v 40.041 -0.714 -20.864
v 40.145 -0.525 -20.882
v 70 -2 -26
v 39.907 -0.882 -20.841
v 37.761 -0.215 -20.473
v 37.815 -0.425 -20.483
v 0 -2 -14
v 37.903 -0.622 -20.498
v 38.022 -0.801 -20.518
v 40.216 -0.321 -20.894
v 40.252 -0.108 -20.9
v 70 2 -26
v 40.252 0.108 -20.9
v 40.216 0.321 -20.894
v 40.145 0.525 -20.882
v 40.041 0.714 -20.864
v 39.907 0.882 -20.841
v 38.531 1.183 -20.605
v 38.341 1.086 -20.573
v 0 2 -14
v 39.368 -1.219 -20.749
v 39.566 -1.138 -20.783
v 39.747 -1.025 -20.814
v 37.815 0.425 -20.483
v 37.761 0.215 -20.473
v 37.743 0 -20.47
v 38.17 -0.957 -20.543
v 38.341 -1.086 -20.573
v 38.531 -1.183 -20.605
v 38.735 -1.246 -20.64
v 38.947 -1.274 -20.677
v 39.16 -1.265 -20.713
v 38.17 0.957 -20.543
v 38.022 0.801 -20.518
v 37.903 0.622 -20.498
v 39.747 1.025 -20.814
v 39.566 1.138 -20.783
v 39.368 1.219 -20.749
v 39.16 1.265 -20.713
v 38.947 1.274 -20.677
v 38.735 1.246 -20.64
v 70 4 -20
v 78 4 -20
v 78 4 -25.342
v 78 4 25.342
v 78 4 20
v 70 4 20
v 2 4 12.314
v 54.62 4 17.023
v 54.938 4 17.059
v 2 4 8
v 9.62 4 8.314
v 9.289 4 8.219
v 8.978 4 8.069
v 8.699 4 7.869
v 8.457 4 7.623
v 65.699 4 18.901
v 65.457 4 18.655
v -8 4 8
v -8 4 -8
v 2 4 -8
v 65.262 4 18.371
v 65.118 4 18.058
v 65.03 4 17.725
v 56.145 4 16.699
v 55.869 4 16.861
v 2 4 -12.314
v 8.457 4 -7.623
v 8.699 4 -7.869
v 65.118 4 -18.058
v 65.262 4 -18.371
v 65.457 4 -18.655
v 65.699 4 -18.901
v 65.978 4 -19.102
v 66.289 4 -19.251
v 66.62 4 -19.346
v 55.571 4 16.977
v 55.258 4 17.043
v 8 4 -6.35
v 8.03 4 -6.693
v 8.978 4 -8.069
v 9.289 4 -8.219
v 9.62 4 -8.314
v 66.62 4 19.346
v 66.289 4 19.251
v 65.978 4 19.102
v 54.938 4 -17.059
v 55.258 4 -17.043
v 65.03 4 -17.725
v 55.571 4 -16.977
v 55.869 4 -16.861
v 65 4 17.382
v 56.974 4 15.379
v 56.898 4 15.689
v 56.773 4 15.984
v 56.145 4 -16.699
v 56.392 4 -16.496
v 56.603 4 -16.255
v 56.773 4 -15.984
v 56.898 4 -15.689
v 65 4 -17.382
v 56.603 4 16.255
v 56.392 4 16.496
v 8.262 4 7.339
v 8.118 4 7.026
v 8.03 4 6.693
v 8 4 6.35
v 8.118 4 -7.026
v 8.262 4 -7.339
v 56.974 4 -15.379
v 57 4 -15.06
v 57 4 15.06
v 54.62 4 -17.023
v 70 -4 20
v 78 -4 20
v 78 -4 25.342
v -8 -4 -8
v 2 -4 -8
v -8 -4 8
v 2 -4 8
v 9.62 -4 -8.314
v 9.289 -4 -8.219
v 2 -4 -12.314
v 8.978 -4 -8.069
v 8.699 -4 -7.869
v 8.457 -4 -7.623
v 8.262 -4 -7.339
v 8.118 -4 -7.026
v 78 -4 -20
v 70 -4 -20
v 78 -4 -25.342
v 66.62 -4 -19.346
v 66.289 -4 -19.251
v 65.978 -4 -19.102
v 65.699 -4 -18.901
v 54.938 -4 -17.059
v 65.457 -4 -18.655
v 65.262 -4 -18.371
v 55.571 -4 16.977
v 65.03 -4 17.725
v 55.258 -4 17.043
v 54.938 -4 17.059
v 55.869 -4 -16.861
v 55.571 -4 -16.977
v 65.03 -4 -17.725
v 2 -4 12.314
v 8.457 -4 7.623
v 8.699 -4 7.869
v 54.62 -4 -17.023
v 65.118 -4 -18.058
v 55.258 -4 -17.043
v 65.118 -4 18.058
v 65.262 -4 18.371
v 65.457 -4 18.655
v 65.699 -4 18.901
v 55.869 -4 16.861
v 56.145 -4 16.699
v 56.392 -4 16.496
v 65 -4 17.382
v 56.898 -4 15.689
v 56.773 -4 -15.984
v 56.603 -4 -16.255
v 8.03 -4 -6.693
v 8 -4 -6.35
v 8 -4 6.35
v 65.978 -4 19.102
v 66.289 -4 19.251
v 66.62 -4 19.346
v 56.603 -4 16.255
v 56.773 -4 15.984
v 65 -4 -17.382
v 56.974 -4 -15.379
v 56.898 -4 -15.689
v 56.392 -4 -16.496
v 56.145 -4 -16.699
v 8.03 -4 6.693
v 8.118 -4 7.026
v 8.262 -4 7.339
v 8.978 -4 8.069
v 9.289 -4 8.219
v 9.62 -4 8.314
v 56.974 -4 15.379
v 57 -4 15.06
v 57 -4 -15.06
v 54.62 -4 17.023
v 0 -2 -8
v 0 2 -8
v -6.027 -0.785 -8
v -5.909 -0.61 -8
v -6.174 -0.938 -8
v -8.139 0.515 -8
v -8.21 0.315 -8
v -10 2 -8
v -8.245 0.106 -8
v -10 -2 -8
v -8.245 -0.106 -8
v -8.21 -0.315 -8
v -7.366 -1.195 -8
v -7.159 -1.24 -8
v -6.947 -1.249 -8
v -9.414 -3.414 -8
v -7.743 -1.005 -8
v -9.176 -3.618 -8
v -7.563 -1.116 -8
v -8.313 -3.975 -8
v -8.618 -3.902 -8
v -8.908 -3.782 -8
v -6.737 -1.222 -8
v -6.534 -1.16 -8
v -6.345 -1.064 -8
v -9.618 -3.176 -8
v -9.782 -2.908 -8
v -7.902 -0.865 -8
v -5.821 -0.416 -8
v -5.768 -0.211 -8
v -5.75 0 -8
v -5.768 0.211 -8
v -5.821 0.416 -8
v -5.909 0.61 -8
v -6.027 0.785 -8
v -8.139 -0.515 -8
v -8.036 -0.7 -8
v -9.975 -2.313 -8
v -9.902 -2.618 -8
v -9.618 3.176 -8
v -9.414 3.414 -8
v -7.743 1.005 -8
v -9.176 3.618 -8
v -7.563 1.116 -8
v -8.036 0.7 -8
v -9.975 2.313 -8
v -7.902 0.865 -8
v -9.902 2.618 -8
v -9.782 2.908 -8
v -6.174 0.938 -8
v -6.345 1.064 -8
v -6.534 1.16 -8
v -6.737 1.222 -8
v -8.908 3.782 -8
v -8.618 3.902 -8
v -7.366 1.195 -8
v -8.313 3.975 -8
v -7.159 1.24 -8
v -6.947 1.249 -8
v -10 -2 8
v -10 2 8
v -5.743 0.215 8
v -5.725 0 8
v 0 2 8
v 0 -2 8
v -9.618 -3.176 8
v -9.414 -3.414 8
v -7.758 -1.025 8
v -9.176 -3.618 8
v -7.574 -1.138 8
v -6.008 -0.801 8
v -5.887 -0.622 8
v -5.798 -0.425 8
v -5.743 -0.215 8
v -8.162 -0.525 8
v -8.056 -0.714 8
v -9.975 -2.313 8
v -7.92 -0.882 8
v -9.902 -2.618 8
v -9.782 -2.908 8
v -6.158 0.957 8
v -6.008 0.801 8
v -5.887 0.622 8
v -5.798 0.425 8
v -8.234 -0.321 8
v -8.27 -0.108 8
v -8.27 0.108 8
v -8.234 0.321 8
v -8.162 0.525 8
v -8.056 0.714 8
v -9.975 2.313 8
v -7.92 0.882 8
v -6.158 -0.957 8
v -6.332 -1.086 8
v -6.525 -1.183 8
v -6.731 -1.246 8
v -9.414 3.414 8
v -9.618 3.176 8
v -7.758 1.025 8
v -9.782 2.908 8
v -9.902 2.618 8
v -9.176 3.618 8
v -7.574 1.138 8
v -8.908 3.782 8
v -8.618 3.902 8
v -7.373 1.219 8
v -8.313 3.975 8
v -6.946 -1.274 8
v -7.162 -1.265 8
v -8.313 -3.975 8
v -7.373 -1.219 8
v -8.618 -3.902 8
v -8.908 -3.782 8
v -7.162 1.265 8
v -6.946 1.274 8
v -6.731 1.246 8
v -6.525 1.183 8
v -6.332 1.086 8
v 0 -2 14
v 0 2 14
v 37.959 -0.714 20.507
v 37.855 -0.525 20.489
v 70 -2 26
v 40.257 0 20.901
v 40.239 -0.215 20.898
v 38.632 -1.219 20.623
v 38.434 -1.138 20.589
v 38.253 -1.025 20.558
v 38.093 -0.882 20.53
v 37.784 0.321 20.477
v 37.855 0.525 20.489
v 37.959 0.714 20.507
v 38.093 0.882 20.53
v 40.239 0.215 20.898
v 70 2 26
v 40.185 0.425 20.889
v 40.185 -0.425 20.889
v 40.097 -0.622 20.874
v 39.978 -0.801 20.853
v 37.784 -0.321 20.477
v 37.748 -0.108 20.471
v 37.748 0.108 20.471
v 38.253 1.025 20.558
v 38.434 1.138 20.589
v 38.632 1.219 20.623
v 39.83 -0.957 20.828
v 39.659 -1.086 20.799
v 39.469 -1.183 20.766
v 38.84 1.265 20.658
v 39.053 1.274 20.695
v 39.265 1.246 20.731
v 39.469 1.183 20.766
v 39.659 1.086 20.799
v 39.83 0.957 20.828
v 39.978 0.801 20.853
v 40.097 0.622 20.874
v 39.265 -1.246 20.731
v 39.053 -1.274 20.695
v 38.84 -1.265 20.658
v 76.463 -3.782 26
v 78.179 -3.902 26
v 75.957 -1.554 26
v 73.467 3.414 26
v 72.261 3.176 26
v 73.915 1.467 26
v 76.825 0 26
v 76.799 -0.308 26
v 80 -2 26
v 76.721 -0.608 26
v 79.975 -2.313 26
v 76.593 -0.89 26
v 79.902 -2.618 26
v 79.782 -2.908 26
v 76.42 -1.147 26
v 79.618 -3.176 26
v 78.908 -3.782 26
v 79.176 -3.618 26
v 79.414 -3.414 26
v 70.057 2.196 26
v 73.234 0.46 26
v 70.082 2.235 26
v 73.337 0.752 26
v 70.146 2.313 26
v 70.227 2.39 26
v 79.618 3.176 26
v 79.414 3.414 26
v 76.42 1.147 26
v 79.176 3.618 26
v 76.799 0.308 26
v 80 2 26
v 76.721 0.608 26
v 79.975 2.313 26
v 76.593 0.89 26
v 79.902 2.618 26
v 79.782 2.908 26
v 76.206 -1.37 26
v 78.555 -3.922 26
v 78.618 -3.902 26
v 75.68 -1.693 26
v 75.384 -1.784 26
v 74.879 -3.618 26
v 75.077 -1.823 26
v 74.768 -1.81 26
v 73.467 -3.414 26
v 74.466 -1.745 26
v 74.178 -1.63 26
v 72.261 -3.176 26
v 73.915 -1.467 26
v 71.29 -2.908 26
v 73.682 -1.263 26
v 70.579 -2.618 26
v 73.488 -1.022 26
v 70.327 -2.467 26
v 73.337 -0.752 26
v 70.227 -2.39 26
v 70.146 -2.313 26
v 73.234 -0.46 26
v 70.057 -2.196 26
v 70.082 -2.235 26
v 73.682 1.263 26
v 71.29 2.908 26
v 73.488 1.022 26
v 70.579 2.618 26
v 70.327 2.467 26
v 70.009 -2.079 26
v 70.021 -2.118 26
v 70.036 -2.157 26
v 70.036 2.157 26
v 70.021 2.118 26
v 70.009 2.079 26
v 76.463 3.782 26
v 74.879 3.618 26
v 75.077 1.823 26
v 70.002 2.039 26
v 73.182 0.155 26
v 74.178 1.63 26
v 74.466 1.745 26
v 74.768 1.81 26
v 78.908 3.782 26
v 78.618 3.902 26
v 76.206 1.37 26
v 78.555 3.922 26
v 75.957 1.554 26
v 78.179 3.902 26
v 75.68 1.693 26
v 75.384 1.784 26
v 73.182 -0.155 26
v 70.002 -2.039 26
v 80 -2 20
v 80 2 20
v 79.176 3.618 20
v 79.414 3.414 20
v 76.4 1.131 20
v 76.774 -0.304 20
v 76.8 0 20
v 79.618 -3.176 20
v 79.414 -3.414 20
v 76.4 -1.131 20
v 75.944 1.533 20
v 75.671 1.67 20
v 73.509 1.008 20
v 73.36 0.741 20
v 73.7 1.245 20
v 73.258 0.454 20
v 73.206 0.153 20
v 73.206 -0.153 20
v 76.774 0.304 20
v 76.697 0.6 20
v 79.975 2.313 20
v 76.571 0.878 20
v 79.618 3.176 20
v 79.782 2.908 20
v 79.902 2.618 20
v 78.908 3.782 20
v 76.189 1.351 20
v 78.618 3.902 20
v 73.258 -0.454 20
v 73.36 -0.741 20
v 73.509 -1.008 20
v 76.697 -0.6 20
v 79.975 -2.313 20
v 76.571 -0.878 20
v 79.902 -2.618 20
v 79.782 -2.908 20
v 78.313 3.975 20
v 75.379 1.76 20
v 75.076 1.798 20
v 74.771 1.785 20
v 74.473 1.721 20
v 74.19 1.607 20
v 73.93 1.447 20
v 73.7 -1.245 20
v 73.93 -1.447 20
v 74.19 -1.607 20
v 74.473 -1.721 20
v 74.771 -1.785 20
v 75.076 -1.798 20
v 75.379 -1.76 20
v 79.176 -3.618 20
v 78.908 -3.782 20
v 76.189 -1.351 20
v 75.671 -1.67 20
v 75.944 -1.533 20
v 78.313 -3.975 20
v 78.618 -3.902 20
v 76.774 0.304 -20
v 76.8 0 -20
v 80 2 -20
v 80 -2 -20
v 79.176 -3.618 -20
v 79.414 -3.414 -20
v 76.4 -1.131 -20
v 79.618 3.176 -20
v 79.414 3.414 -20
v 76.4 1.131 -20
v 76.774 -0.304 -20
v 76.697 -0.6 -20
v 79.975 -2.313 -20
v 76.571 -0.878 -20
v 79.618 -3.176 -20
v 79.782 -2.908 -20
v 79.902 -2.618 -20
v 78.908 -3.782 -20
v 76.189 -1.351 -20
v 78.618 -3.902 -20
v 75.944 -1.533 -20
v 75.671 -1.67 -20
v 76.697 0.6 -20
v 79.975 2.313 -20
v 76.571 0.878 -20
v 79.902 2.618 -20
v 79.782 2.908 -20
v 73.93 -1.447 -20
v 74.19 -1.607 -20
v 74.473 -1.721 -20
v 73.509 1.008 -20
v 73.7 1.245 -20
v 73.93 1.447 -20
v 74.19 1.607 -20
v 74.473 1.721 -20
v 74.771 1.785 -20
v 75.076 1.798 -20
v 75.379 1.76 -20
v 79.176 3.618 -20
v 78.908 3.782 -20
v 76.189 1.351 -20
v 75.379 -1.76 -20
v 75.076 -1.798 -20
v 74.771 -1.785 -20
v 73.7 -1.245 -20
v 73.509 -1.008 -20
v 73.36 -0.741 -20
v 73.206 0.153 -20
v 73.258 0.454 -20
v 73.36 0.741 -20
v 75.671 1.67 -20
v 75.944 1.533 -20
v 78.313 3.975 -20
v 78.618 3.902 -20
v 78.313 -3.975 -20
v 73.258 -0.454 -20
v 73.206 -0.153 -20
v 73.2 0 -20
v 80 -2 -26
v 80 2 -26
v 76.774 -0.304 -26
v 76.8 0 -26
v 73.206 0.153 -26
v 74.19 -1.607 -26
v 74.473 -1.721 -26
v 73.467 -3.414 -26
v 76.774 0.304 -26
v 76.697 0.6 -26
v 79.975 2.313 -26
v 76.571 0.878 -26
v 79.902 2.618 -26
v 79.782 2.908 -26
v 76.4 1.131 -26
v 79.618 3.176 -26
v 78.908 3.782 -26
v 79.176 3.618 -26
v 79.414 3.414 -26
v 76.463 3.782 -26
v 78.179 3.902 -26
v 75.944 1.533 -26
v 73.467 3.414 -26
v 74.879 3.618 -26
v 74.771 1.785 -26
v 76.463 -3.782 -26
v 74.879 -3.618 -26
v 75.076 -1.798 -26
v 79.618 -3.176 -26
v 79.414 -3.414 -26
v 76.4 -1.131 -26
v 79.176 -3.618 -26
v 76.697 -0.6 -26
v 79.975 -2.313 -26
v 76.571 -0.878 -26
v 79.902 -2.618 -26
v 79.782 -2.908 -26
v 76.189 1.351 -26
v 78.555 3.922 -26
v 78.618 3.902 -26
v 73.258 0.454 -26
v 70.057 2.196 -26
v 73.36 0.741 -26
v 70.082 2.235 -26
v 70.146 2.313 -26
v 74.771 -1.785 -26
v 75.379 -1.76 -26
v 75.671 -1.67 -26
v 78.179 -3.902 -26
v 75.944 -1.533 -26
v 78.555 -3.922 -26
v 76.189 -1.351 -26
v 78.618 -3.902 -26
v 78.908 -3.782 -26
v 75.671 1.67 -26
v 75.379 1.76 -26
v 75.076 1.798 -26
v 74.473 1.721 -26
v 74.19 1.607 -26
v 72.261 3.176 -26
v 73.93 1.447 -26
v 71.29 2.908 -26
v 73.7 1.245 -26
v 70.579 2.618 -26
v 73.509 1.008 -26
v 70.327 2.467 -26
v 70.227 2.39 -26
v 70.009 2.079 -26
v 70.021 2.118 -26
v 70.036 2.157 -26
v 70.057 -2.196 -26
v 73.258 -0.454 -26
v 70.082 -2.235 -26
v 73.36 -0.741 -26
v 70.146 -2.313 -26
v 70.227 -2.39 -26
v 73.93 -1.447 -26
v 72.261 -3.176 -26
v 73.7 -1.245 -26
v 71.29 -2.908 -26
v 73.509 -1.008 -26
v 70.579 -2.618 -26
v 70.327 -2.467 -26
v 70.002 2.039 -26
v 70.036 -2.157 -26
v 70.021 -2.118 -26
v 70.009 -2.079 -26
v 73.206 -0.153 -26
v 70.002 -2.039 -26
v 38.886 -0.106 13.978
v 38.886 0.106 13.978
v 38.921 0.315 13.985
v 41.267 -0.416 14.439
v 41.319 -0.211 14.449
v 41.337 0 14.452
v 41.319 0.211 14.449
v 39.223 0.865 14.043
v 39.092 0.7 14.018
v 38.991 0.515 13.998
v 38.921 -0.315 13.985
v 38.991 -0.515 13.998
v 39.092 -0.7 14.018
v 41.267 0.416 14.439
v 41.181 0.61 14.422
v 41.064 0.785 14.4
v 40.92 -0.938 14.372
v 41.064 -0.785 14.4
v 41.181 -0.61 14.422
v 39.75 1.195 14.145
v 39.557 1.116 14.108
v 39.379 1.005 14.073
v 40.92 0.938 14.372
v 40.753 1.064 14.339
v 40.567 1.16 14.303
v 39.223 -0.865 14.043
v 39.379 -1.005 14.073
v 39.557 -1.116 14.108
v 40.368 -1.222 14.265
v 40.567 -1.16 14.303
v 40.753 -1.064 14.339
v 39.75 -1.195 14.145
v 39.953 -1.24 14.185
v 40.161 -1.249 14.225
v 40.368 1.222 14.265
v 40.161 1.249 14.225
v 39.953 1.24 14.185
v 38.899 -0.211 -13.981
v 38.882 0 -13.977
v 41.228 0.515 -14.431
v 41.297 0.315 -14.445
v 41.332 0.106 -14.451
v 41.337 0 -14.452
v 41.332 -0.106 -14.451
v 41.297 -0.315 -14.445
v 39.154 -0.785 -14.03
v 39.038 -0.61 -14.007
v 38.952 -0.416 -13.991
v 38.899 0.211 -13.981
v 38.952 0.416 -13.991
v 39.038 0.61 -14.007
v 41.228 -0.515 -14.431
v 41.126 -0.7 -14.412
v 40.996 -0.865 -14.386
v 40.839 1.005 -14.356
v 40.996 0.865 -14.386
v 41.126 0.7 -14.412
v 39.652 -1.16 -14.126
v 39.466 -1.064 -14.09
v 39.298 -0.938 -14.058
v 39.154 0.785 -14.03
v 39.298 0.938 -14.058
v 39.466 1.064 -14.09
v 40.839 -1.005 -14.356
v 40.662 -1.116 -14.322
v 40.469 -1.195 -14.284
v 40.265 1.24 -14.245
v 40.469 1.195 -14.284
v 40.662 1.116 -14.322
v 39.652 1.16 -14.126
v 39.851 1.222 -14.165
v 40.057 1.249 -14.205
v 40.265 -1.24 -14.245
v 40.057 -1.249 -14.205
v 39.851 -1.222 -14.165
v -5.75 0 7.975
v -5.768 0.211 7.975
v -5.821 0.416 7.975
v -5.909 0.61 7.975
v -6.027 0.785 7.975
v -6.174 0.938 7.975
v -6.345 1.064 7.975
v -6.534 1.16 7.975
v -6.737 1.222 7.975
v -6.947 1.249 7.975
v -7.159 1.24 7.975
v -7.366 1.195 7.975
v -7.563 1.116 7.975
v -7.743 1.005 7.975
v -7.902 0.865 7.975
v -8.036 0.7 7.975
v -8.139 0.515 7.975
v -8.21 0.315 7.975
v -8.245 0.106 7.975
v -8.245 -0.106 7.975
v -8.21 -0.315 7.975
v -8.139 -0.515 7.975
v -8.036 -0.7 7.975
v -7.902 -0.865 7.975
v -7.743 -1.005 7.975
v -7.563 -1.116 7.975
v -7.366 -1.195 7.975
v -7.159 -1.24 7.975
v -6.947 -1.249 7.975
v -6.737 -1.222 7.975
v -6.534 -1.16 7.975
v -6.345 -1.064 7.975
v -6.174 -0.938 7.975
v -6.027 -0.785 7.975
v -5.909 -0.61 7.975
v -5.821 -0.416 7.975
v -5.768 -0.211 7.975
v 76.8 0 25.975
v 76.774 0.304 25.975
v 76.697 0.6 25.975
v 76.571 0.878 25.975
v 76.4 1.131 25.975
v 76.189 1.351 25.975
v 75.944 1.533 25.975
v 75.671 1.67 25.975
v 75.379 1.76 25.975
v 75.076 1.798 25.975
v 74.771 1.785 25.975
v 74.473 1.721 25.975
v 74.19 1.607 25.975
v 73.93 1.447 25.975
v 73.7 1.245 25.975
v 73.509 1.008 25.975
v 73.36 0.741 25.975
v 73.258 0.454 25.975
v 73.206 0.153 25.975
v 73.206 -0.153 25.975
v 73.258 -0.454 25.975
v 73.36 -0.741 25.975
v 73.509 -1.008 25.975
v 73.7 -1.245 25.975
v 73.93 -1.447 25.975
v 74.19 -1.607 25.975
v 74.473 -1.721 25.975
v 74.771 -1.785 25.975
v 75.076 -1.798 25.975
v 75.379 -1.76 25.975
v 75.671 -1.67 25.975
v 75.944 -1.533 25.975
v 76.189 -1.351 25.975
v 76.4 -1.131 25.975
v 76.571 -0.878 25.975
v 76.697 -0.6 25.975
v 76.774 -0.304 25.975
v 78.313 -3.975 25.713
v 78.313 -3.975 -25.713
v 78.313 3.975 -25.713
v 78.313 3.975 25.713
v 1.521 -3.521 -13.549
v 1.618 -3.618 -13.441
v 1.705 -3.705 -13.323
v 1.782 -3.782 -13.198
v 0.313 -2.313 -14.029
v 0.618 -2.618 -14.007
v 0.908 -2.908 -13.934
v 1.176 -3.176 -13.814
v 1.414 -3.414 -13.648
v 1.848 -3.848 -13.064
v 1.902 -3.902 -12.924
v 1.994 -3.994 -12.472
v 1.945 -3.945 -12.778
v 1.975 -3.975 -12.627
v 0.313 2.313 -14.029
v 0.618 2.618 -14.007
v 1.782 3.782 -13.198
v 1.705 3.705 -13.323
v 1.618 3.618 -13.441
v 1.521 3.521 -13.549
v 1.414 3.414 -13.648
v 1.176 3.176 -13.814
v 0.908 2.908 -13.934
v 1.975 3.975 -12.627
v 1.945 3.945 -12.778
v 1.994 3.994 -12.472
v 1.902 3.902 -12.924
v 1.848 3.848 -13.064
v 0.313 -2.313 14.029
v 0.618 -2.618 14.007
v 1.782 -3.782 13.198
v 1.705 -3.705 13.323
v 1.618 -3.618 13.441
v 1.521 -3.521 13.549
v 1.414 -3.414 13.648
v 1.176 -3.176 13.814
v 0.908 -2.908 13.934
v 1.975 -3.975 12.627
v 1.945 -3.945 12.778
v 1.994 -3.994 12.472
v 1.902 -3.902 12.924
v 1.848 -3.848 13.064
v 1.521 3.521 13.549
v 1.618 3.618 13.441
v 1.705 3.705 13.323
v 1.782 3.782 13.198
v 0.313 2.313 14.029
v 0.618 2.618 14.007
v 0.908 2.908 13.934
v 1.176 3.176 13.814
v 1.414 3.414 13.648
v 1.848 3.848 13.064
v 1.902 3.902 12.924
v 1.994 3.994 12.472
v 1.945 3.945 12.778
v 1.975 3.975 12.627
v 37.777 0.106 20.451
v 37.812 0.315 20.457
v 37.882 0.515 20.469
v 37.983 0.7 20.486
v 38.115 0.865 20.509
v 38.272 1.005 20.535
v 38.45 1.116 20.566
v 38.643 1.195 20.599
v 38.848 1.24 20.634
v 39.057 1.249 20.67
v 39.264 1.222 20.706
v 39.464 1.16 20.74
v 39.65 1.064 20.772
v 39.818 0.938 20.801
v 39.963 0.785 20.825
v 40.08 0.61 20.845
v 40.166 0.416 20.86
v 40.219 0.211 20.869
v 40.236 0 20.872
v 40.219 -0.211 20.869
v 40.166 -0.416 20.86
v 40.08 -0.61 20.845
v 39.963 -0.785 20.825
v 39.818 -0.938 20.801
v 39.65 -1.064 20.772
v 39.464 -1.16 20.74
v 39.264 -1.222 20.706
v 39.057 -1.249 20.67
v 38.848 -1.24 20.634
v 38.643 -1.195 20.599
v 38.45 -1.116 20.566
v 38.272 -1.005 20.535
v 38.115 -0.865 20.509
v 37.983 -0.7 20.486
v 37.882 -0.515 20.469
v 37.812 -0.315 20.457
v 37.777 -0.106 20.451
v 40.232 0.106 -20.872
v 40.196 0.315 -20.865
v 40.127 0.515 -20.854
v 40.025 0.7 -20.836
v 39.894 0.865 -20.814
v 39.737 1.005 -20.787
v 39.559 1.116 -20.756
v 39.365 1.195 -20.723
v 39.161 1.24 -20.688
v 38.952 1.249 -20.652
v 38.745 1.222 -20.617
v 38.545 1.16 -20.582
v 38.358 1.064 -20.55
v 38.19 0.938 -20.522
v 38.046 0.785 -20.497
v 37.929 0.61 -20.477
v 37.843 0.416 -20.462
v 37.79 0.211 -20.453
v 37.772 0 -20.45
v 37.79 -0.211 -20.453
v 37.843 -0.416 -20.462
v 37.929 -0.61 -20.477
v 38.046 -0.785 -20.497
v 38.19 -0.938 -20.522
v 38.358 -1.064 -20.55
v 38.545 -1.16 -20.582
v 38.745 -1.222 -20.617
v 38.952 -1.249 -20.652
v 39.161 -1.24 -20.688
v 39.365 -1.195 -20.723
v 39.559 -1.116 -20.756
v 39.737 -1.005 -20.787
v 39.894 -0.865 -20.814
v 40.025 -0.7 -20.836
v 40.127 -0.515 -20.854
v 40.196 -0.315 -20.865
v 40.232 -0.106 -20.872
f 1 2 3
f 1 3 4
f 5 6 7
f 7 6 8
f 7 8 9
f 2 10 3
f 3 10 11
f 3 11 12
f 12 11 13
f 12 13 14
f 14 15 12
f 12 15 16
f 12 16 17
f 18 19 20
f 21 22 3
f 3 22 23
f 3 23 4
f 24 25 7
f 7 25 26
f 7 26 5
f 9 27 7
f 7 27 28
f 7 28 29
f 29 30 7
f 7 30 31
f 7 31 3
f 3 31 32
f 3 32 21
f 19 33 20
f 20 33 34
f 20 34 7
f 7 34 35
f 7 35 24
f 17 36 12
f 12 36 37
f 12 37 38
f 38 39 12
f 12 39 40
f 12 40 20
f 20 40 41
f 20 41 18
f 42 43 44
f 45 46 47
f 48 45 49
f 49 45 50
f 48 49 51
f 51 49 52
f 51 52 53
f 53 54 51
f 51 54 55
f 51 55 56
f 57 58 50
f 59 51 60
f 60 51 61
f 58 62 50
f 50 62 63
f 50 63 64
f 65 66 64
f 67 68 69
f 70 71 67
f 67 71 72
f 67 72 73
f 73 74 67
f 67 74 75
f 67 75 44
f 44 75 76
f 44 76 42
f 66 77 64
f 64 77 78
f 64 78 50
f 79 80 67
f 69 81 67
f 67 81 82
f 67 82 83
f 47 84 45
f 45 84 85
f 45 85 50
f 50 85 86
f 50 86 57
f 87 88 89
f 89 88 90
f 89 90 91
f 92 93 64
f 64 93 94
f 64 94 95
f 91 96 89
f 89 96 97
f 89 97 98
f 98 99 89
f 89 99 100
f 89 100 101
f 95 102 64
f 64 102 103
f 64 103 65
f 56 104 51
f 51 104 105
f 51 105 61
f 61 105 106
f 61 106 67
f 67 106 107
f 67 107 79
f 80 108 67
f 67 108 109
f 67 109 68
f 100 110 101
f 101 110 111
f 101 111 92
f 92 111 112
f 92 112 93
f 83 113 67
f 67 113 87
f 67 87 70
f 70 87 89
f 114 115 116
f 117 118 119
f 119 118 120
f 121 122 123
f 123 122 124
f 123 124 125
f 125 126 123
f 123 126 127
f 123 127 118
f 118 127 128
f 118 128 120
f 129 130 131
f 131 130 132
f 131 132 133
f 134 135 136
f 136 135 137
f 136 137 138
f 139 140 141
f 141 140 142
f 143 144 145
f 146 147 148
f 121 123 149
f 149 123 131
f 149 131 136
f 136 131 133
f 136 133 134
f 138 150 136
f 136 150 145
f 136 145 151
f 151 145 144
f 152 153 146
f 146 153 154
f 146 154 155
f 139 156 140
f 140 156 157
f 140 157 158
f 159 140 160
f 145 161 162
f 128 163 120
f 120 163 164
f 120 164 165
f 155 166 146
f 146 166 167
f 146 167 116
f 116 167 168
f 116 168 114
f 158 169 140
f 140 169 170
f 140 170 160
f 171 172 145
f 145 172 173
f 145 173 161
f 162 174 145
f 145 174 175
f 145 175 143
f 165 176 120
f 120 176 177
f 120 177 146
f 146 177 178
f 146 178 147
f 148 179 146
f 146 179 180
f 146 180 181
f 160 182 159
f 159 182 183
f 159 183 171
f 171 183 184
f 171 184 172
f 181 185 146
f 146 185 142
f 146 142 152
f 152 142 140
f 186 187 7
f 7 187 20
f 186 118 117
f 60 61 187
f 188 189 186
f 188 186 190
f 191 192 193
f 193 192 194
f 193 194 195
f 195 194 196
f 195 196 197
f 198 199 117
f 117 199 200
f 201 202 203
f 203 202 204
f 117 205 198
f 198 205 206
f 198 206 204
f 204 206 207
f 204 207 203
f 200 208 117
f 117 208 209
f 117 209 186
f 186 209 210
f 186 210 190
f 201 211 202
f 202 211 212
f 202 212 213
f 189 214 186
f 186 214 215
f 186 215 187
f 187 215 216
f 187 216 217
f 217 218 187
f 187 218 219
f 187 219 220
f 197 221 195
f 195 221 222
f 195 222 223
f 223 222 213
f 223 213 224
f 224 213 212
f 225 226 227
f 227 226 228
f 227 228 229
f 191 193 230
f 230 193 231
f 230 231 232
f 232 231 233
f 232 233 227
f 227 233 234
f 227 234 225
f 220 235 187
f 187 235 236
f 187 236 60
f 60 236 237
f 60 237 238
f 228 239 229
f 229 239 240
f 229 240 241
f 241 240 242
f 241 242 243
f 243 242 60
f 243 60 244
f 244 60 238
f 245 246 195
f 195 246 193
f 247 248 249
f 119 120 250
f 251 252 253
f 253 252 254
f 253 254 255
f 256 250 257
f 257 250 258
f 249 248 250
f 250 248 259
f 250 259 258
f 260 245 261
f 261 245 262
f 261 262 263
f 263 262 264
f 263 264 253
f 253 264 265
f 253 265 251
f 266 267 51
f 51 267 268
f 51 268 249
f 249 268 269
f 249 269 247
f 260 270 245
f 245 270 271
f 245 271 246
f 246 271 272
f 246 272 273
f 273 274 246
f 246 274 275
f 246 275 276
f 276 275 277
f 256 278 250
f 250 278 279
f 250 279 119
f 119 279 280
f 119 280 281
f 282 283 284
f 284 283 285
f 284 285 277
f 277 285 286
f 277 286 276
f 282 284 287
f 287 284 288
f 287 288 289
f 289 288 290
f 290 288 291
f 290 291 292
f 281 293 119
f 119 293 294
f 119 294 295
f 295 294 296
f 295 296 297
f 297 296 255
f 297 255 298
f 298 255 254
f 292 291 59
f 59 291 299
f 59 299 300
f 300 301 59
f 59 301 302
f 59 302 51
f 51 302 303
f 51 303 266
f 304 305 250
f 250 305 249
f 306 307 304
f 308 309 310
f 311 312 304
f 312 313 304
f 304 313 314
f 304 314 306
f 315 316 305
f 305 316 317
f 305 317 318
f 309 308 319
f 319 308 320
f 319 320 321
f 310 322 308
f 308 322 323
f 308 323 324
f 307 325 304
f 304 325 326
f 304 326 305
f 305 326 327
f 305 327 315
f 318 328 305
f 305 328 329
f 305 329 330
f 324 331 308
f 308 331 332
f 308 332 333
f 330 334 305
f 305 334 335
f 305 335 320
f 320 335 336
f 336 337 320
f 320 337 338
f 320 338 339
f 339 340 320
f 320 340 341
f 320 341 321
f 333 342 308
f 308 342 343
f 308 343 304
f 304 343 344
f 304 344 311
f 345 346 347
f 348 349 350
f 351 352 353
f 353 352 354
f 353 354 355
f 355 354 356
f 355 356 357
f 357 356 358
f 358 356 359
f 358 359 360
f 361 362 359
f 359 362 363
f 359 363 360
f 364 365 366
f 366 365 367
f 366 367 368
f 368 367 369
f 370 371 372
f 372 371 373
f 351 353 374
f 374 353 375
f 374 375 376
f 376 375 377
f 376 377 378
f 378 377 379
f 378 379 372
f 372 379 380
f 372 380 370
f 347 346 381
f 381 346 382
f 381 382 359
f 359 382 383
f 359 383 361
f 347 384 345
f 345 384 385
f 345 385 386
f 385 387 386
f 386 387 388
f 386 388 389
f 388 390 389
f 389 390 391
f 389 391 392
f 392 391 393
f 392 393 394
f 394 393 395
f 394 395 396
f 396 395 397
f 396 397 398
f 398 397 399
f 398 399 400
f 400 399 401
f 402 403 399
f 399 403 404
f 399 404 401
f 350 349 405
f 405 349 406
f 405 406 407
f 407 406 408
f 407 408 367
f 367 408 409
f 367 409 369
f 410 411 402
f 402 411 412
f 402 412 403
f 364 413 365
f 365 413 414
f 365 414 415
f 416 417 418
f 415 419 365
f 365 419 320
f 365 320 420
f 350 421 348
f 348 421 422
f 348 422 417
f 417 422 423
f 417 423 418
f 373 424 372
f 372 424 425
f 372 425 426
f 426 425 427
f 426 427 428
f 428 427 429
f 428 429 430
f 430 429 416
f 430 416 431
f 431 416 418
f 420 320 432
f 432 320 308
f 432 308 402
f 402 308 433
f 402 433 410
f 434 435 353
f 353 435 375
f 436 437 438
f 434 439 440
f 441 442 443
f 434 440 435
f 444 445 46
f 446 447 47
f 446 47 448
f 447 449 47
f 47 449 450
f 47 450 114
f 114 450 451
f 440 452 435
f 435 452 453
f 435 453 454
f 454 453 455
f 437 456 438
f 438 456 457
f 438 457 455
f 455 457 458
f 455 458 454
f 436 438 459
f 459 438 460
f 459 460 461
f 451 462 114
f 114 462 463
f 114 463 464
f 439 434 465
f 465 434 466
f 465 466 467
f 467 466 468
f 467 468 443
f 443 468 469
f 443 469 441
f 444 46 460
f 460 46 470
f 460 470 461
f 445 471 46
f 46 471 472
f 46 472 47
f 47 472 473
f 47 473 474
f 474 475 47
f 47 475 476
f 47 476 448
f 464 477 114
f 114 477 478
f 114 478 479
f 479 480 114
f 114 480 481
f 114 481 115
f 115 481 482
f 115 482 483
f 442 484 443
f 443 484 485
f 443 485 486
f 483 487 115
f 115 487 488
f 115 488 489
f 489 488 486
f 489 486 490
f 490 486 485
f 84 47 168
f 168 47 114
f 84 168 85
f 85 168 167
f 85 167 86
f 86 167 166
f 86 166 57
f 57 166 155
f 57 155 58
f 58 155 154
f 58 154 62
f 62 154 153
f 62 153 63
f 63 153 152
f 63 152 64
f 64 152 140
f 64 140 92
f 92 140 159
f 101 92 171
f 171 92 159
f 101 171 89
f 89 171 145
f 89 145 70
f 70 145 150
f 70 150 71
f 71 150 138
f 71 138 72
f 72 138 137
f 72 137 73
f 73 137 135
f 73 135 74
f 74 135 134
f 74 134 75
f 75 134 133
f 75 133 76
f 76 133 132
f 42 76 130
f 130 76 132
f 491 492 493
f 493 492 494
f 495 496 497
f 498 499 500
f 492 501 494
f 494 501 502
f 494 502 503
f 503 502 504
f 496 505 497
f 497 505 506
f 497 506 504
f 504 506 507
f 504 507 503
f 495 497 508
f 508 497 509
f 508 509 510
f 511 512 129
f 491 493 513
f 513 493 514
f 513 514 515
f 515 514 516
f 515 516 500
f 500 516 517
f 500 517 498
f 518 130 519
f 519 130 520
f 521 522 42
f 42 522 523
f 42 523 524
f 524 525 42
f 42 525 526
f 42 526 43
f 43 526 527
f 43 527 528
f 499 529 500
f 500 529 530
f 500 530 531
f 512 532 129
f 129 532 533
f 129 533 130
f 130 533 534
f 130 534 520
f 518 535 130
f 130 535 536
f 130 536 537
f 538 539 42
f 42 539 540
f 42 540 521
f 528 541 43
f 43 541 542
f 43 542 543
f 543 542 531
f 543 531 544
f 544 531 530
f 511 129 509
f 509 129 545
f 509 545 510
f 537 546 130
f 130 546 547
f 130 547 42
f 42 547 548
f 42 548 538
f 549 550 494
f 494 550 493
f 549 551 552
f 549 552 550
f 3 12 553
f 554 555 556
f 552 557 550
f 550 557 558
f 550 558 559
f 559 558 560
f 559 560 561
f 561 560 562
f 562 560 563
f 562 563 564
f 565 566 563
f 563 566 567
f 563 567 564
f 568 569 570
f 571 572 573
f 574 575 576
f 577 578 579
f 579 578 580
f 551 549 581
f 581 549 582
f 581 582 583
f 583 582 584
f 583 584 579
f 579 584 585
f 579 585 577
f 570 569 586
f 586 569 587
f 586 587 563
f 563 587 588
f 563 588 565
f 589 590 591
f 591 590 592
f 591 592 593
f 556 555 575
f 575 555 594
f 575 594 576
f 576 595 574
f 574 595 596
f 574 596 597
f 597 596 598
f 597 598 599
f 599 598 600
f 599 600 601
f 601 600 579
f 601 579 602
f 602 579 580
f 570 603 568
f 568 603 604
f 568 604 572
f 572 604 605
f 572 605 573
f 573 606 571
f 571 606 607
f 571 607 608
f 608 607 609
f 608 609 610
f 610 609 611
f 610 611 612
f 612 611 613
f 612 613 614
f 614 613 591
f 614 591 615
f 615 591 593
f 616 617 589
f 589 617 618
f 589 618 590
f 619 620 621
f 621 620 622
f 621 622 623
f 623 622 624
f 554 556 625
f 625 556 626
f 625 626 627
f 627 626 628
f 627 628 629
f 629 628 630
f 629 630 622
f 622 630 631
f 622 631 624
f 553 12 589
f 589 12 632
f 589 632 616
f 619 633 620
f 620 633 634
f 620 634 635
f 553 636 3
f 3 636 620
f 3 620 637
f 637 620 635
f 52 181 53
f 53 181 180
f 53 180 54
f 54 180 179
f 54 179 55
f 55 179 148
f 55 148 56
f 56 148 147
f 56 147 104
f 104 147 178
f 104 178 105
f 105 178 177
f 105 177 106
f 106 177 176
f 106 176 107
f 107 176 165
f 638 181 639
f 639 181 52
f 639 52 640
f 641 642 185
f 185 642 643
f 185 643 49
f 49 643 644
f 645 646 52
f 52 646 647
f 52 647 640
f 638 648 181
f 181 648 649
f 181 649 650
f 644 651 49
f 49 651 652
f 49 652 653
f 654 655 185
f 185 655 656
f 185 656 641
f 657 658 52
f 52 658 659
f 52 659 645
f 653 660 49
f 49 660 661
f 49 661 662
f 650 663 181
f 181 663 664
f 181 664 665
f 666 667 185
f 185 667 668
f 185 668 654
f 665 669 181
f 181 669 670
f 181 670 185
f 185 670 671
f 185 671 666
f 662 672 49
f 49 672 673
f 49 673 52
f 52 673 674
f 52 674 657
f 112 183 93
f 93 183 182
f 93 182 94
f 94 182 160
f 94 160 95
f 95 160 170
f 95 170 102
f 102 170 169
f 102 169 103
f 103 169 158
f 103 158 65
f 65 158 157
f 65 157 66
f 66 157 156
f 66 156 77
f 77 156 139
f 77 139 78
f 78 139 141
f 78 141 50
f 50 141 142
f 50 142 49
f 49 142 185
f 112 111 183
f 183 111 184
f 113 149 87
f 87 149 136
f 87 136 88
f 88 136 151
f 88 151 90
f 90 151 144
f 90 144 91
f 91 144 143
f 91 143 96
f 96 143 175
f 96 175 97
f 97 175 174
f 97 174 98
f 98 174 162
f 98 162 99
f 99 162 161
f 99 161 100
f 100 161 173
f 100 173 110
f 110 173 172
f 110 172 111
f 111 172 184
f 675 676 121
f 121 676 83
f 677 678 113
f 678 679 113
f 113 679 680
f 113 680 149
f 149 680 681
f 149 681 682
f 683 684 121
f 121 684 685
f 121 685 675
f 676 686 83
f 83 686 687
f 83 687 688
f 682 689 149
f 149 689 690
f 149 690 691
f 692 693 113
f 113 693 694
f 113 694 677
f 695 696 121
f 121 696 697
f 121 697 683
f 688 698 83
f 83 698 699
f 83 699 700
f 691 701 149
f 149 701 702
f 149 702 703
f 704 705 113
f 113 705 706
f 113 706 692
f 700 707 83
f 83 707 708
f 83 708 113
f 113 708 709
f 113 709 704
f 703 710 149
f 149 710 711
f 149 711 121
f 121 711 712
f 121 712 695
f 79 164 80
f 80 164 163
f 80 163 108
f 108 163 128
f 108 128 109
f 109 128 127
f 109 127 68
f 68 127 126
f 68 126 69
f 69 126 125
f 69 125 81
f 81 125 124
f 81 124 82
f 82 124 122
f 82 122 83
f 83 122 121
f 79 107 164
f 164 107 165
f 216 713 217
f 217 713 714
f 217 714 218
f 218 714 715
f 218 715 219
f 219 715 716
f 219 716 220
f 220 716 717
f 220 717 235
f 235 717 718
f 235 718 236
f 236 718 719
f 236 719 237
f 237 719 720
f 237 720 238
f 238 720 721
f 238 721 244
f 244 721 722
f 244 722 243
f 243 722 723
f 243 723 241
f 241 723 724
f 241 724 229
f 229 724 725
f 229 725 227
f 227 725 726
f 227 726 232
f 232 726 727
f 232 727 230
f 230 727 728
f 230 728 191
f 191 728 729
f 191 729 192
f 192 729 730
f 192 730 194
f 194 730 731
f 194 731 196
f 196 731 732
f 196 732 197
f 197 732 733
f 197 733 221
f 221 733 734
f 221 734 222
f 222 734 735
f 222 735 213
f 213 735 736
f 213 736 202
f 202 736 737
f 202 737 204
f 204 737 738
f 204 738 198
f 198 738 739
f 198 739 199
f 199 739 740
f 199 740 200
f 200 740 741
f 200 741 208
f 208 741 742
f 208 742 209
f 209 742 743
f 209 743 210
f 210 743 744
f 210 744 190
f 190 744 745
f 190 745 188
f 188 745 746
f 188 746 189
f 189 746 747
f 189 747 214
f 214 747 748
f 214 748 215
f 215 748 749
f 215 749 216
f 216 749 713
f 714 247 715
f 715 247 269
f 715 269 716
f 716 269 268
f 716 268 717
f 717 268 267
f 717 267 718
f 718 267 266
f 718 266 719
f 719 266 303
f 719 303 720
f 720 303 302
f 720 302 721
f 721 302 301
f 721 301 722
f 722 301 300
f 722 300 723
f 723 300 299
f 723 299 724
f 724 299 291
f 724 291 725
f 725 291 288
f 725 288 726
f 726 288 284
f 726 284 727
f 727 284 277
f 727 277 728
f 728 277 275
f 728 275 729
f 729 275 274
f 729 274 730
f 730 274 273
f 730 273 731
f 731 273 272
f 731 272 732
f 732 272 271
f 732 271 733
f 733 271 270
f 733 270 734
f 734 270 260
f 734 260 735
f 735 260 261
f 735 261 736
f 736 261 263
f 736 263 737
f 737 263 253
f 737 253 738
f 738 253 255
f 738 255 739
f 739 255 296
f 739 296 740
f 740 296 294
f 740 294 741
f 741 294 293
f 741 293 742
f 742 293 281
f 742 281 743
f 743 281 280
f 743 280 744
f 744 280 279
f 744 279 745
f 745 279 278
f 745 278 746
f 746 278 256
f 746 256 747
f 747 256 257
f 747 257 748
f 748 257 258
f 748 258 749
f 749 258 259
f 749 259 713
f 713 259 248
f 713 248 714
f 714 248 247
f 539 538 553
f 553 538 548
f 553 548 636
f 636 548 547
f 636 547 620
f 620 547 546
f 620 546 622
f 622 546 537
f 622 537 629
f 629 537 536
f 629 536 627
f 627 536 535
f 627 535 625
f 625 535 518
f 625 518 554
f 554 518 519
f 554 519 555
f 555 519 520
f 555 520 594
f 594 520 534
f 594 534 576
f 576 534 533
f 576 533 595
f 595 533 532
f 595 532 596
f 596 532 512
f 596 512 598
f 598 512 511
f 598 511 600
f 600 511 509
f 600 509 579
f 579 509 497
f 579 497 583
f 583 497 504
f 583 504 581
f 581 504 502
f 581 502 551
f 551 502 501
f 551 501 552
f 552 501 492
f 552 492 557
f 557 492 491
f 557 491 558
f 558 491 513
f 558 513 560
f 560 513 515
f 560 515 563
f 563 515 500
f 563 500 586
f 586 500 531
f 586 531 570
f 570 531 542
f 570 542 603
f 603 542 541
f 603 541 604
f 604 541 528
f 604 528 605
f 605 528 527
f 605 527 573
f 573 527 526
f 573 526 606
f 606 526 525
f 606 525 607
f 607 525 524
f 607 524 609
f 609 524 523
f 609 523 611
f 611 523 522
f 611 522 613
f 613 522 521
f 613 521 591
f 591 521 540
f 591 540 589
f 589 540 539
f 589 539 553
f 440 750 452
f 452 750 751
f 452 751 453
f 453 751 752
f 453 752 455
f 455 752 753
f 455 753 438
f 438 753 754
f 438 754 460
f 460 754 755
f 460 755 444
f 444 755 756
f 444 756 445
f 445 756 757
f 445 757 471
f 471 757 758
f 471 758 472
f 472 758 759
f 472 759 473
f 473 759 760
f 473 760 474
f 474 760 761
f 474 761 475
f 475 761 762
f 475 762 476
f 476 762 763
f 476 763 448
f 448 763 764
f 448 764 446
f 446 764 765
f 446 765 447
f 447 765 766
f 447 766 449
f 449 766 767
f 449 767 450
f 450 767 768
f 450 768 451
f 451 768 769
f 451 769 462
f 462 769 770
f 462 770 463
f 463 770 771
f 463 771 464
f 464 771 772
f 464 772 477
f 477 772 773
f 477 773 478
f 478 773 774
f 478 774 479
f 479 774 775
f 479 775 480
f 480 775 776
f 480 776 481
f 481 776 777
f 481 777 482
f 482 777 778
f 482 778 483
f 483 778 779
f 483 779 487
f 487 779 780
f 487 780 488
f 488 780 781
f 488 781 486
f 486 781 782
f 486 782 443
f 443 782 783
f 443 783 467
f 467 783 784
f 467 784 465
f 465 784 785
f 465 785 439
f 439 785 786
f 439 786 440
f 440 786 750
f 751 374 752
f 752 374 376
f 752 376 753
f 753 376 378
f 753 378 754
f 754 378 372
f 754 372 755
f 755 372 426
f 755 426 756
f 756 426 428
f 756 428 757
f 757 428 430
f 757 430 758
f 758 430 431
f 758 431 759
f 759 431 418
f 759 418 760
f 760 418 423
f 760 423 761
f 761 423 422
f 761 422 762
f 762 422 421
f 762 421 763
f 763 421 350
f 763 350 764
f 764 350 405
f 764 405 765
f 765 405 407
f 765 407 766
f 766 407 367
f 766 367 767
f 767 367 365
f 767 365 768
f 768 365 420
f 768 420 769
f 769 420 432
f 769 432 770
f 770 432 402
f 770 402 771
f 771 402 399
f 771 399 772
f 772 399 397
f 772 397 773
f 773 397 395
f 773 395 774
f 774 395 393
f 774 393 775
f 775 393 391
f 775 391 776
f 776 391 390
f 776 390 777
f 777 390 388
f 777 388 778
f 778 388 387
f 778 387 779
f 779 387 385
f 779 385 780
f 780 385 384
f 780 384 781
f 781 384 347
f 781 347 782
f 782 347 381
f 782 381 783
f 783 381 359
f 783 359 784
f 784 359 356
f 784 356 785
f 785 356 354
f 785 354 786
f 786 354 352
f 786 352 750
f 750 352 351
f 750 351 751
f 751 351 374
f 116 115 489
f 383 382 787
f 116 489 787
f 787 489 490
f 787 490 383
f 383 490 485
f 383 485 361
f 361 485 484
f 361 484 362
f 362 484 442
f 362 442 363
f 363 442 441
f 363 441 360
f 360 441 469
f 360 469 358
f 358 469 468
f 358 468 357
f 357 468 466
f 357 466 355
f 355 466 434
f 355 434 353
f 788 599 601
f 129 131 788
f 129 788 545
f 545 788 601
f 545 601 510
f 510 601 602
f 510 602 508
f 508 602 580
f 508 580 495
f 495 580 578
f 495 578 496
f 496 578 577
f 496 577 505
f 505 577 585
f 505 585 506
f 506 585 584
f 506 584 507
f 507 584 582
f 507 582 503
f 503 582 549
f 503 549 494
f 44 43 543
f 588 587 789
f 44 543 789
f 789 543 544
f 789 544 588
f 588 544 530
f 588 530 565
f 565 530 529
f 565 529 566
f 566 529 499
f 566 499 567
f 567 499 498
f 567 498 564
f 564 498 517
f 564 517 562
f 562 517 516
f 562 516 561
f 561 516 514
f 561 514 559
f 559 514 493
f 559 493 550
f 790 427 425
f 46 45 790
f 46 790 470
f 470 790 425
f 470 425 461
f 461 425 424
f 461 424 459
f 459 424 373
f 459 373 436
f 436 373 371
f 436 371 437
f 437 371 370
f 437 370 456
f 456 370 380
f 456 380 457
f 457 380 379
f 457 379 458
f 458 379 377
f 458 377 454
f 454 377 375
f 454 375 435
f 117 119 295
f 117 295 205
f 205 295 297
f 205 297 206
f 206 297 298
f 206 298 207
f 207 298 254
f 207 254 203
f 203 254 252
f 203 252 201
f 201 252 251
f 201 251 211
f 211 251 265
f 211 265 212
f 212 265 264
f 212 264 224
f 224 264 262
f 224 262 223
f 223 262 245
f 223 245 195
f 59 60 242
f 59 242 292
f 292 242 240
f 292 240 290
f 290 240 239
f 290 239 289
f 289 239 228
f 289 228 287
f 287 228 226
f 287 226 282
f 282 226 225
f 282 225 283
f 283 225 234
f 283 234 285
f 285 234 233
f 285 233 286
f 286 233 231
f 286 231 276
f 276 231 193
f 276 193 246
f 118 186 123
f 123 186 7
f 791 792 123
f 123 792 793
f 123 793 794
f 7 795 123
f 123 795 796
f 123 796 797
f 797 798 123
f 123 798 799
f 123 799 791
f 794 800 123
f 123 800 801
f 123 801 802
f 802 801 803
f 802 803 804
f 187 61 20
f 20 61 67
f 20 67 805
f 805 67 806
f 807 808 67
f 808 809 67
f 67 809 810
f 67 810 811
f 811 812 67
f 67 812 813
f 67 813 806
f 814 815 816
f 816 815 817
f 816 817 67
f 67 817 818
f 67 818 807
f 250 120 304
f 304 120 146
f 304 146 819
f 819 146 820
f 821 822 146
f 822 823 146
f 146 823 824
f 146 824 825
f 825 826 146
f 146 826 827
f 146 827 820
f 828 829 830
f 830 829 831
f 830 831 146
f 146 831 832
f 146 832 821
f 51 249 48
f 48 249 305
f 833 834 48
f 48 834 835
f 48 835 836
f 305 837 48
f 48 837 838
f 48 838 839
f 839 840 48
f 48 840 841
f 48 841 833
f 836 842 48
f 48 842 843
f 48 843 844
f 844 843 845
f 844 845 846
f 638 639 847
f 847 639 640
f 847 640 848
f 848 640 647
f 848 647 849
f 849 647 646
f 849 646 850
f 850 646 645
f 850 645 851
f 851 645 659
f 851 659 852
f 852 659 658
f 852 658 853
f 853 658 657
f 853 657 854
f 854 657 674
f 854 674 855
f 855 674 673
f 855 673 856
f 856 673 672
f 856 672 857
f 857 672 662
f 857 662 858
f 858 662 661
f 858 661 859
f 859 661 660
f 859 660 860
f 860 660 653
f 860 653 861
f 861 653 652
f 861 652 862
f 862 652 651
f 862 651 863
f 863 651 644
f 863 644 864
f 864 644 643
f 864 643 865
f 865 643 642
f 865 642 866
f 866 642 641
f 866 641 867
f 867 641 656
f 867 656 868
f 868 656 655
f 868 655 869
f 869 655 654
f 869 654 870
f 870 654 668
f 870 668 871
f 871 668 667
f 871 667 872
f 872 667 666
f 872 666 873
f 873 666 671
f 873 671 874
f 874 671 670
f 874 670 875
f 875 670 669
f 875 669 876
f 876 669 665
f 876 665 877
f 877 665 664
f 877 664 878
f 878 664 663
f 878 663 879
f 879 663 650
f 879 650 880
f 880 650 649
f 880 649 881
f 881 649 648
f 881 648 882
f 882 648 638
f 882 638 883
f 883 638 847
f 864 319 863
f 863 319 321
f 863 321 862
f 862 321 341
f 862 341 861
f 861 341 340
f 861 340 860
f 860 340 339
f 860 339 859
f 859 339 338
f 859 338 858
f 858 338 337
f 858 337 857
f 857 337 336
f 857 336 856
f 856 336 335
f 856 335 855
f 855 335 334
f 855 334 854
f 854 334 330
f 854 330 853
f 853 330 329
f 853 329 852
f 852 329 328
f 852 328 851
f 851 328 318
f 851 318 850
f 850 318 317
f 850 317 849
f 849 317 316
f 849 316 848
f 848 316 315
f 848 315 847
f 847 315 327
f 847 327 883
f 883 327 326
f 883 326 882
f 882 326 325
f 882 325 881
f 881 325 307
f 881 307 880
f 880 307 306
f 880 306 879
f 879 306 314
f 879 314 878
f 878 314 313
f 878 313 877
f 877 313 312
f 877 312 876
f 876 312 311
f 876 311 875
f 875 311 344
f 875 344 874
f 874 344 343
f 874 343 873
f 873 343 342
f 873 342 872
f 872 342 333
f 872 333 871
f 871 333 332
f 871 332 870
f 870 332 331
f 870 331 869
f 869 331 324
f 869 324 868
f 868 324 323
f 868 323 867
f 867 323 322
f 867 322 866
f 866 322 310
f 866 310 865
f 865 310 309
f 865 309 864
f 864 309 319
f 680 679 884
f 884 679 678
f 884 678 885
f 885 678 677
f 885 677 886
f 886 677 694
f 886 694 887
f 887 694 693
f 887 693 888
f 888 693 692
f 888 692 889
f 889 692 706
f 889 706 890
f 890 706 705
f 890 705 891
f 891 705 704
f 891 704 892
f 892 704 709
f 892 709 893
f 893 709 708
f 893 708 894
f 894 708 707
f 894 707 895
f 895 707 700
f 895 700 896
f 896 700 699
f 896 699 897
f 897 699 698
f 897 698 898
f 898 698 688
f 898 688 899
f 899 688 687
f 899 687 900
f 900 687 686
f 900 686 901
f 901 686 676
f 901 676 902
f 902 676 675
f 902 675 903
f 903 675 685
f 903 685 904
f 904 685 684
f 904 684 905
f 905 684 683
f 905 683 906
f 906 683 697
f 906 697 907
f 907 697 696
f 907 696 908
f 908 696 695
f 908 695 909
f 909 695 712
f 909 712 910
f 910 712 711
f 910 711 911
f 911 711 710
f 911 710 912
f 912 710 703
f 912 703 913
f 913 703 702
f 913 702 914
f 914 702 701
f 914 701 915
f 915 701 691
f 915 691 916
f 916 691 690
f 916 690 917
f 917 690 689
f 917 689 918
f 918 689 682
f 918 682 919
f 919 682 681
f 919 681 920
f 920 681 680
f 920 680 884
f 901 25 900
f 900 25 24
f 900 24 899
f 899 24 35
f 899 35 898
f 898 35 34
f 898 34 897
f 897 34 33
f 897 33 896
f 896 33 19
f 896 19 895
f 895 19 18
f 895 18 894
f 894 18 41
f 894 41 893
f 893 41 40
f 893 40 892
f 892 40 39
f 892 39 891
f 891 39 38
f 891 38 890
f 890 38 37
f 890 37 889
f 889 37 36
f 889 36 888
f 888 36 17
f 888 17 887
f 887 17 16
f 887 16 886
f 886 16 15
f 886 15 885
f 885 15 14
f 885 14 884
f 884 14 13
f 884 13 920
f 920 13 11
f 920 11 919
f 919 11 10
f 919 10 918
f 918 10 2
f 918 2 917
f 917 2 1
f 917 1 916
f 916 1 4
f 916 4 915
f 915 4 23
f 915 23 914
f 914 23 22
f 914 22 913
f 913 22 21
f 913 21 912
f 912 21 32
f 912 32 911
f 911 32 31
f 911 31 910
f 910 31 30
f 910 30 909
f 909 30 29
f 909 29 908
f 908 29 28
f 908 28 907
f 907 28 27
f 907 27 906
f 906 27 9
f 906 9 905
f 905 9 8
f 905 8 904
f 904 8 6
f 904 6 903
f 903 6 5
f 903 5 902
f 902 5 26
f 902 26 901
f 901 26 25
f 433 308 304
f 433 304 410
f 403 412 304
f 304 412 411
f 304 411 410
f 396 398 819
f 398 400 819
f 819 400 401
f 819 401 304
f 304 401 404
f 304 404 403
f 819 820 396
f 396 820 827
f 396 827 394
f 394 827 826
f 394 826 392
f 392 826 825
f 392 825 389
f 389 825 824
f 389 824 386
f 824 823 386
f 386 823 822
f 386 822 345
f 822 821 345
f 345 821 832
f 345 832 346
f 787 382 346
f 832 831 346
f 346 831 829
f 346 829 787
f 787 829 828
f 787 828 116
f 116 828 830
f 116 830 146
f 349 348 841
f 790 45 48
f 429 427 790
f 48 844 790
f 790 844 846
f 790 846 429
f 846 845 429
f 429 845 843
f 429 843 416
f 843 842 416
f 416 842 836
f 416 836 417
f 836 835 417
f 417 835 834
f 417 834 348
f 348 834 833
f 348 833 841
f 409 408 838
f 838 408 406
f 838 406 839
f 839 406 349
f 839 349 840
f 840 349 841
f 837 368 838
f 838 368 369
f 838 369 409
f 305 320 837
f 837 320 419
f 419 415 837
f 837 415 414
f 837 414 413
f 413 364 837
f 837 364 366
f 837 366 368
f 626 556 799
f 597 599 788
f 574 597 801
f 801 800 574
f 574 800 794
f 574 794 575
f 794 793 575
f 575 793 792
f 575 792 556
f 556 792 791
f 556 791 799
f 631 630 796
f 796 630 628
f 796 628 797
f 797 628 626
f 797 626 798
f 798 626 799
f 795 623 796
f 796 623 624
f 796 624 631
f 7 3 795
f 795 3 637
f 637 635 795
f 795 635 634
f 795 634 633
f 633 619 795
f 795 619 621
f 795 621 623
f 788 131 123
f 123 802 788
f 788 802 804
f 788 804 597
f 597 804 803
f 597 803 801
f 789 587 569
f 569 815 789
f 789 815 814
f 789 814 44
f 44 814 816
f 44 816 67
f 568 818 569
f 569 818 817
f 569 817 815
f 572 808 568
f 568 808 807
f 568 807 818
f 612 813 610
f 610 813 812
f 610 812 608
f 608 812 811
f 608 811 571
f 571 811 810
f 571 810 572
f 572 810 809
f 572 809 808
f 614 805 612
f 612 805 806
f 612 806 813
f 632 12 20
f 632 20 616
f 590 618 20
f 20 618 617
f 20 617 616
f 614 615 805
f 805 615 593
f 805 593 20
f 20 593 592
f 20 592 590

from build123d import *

# Parameters (mm, degrees)
BOSS_EXTRUDE1_DEPTH                   = 4
SKETCH3_R                             = 1
CUT_EXTRUDE2_DEPTH                    = 96.498691091
SKETCH4_R                             = 1
CUT_EXTRUDE3_DEPTH                    = 88.017239671
TAP_DRILL_FOR_M3X0_5_TAP2_D           = 2.5
TAP_DRILL_FOR_M3X0_5_TAP2_CSINK_D     = 2.55
TAP_DRILL_FOR_M3X0_5_TAP2_CSINK_ANGLE = 90
M3_CLEARANCE_HOLE2_D                  = 3.6
M3_CLEARANCE_HOLE2_CSINK_D            = 3.65
M3_CLEARANCE_HOLE2_CSINK_ANGLE        = 90
FILLET1_R                             = 2
CHAMFER1_SIZE                         = 2
FILLET2_R                             = 2


# Read off the part's stored shape, not the designer's step: Tap Drill for M3x0.5 Tap4, Tap Drill for M3x0.5 Tap5
with BuildPart() as part:
    # Sketch1 → Boss-Extrude1 (new, symmetric)
    with BuildSketch(Plane(origin=(0, 0, 0), x_dir=(1, 0, 0), z_dir=(0, 1, 0))):
        with BuildLine():
            Line((0, 8), (-10, 8))
            Line((-10, 8), (-10, -8))
            Line((-10, -8), (0, -8))
            Line((0, -8), (0, -14))
            Line((0, -14), (70, -26))
            Line((70, -26), (80, -26))
            Line((80, -26), (80, -20))
            Line((80, -20), (70, -20))
            Line((70, -20), (66.619956187, -19.345797972))
            ThreePointArc((66.619956187, -19.345797972), (65.457260938, -18.655013265), (65, -17.38223827))
            Line((65, -17.38223827), (65, 17.38223827))
            ThreePointArc((65, 17.38223827), (65.457260938, 18.655013265), (66.619956187, 19.345797972))
            Line((66.619956187, 19.345797972), (70, 20))
            Line((70, 20), (80, 20))
            Line((80, 20), (80, 26))
            Line((80, 26), (70, 26))
            Line((70, 26), (0, 14))
            Line((0, 14), (0, 8))
        make_face()
        with BuildLine():
            Line((8, 6.349980206), (8, -6.349980206))
            ThreePointArc((8, -6.349980206), (8.457260938, -7.622755201), (9.619956187, -8.313539907))
            Line((9.619956187, -8.313539907), (54.619956187, -17.023217326))
            ThreePointArc((54.619956187, -17.023217326), (56.272774995, -16.602396687), (57, -15.059657625))
            Line((57, -15.059657625), (57, 15.059657625))
            ThreePointArc((57, 15.059657625), (56.272774995, 16.602396687), (54.619956187, 17.023217326))
            Line((54.619956187, 17.023217326), (9.619956187, 8.313539907))
            ThreePointArc((9.619956187, 8.313539907), (8.457260938, 7.622755201), (8, 6.349980206))
        make_face(mode=Mode.SUBTRACT)
    extrude(amount=BOSS_EXTRUDE1_DEPTH, both=True)

    # Sketch3 → Cut-Extrude2 (cut, through all)
    with BuildSketch(Plane.XY.offset(26)):
        with Locations((75, 0)):
            Circle(SKETCH3_R)
    extrude(amount=-CUT_EXTRUDE2_DEPTH, mode=Mode.SUBTRACT)

    # Sketch4 → Cut-Extrude3 (cut, through all)
    with BuildSketch(Plane.XY.offset(8)):
        with Locations((-7, 0)):
            Circle(SKETCH4_R)
    extrude(amount=-CUT_EXTRUDE3_DEPTH, mode=Mode.SUBTRACT)

    # Tap Drill for M3x0.5 Tap2 (through all)
    with Locations(Plane.XY.offset(8)):
        with Locations((-7, 0)):
            CounterSinkHole(TAP_DRILL_FOR_M3X0_5_TAP2_D / 2, TAP_DRILL_FOR_M3X0_5_TAP2_CSINK_D / 2, counter_sink_angle=TAP_DRILL_FOR_M3X0_5_TAP2_CSINK_ANGLE)

    # M3 Clearance Hole2 (through all)
    with Locations(Plane.XY.offset(26)):
        with Locations((75, 0)):
            CounterSinkHole(M3_CLEARANCE_HOLE2_D / 2, M3_CLEARANCE_HOLE2_CSINK_D / 2, counter_sink_angle=M3_CLEARANCE_HOLE2_CSINK_ANGLE)

    # Fillet1
    fillet1_edges = [part.edges().sort_by_distance(p)[0] for p in [
        (-10, 4, 0),
        (80, -4, -23),
        (80, -4, 23),
        (-10, -4, 0),
        (80, 4, 23),
        (80, 4, -23),
    ]]
    fillet(fillet1_edges, radius=FILLET1_R)

    # Chamfer1
    chamfer1_edges = [part.edges().sort_by_distance(p)[0] for p in [
        (0, 4, 11),
        (0, -4, 11),
        (0, -4, -11),
        (0, 4, -11),
    ]]
    chamfer(chamfer1_edges, length=CHAMFER1_SIZE)

    # Tap Drill for M3x0.5 Tap4 outline → Tap Drill for M3x0.5 Tap4 (revolve, cut)
    with BuildSketch(Plane(origin=(41.33148295, 0, 7.085397077), x_dir=(0.9856222548132666, 0, 0.1689638151108459), z_dir=(0, 1, 0))):
        Polygon((1.25, -13.773711567), (1.25, -7.206179724), (0, -7.206179724), (0, -13.798711567), (1.275, -13.798711567), align=None)
    revolve(axis=Axis((41.33148295, 0, 7.085397077), (0.1689638151108459, 0, -0.9856222548132666)), mode=Mode.SUBTRACT)

    # Tap Drill for M3x0.5 Tap5 outline → Tap Drill for M3x0.5 Tap5 (revolve, cut)
    with BuildSketch(Plane(origin=(41.33148295, 0, -7.085397077), x_dir=(0.9856222548132666, 0, -0.1689638151108459), z_dir=(0, -1, 0))):
        Polygon((1.25, -13.773711567), (1.25, -7.206546017), (0, -7.206546017), (0, -13.798711567), (1.275, -13.798711567), align=None)
    revolve(axis=Axis((41.33148295, 0, -7.085397077), (0.1689638151108459, 0, 0.9856222548132666)), mode=Mode.SUBTRACT)

    # Fillet2
    # the kernel refuses this fillet: 2 mm, written as the material it takes off along each edge
    with BuildSketch(Plane(origin=(-9.827467058, -4, 12.315291362), x_dir=(0.1689638151108459, 0, -0.9856222548132667), z_dir=(0.9856222548132667, 0, 0.16896381511084588)), Plane(origin=(-9.827467058, 4, 12.315291362), x_dir=(0, -1, 0), z_dir=(0.9856222548132667, 0, 0.16896381511084588)), Plane(origin=(81.827467058, -4, -28.027565781), x_dir=(0.16896381511084588, 0, 0.9856222548132667), z_dir=(-0.9856222548132667, 0, 0.16896381511084588)), Plane(origin=(81.827467058, 4, -28.027565781), x_dir=(0, -1, 0), z_dir=(-0.9856222548132667, 0, 0.16896381511084588))) as fillet2_piece_1:
        with BuildLine():
            CenterArc((FILLET2_R, FILLET2_R), FILLET2_R, 180, 90)
            Line((0, FILLET2_R), (-FILLET2_R * 0.02, FILLET2_R))
            Line((-FILLET2_R * 0.02, FILLET2_R), (-FILLET2_R * 0.02, -FILLET2_R * 0.02))
            Line((-FILLET2_R * 0.02, -FILLET2_R * 0.02), (FILLET2_R, -FILLET2_R * 0.02))
            Line((FILLET2_R, -FILLET2_R * 0.02), (FILLET2_R, 0))
        make_face()
    extrude(amount=92.991948658, mode=Mode.SUBTRACT)


solid = part.part
